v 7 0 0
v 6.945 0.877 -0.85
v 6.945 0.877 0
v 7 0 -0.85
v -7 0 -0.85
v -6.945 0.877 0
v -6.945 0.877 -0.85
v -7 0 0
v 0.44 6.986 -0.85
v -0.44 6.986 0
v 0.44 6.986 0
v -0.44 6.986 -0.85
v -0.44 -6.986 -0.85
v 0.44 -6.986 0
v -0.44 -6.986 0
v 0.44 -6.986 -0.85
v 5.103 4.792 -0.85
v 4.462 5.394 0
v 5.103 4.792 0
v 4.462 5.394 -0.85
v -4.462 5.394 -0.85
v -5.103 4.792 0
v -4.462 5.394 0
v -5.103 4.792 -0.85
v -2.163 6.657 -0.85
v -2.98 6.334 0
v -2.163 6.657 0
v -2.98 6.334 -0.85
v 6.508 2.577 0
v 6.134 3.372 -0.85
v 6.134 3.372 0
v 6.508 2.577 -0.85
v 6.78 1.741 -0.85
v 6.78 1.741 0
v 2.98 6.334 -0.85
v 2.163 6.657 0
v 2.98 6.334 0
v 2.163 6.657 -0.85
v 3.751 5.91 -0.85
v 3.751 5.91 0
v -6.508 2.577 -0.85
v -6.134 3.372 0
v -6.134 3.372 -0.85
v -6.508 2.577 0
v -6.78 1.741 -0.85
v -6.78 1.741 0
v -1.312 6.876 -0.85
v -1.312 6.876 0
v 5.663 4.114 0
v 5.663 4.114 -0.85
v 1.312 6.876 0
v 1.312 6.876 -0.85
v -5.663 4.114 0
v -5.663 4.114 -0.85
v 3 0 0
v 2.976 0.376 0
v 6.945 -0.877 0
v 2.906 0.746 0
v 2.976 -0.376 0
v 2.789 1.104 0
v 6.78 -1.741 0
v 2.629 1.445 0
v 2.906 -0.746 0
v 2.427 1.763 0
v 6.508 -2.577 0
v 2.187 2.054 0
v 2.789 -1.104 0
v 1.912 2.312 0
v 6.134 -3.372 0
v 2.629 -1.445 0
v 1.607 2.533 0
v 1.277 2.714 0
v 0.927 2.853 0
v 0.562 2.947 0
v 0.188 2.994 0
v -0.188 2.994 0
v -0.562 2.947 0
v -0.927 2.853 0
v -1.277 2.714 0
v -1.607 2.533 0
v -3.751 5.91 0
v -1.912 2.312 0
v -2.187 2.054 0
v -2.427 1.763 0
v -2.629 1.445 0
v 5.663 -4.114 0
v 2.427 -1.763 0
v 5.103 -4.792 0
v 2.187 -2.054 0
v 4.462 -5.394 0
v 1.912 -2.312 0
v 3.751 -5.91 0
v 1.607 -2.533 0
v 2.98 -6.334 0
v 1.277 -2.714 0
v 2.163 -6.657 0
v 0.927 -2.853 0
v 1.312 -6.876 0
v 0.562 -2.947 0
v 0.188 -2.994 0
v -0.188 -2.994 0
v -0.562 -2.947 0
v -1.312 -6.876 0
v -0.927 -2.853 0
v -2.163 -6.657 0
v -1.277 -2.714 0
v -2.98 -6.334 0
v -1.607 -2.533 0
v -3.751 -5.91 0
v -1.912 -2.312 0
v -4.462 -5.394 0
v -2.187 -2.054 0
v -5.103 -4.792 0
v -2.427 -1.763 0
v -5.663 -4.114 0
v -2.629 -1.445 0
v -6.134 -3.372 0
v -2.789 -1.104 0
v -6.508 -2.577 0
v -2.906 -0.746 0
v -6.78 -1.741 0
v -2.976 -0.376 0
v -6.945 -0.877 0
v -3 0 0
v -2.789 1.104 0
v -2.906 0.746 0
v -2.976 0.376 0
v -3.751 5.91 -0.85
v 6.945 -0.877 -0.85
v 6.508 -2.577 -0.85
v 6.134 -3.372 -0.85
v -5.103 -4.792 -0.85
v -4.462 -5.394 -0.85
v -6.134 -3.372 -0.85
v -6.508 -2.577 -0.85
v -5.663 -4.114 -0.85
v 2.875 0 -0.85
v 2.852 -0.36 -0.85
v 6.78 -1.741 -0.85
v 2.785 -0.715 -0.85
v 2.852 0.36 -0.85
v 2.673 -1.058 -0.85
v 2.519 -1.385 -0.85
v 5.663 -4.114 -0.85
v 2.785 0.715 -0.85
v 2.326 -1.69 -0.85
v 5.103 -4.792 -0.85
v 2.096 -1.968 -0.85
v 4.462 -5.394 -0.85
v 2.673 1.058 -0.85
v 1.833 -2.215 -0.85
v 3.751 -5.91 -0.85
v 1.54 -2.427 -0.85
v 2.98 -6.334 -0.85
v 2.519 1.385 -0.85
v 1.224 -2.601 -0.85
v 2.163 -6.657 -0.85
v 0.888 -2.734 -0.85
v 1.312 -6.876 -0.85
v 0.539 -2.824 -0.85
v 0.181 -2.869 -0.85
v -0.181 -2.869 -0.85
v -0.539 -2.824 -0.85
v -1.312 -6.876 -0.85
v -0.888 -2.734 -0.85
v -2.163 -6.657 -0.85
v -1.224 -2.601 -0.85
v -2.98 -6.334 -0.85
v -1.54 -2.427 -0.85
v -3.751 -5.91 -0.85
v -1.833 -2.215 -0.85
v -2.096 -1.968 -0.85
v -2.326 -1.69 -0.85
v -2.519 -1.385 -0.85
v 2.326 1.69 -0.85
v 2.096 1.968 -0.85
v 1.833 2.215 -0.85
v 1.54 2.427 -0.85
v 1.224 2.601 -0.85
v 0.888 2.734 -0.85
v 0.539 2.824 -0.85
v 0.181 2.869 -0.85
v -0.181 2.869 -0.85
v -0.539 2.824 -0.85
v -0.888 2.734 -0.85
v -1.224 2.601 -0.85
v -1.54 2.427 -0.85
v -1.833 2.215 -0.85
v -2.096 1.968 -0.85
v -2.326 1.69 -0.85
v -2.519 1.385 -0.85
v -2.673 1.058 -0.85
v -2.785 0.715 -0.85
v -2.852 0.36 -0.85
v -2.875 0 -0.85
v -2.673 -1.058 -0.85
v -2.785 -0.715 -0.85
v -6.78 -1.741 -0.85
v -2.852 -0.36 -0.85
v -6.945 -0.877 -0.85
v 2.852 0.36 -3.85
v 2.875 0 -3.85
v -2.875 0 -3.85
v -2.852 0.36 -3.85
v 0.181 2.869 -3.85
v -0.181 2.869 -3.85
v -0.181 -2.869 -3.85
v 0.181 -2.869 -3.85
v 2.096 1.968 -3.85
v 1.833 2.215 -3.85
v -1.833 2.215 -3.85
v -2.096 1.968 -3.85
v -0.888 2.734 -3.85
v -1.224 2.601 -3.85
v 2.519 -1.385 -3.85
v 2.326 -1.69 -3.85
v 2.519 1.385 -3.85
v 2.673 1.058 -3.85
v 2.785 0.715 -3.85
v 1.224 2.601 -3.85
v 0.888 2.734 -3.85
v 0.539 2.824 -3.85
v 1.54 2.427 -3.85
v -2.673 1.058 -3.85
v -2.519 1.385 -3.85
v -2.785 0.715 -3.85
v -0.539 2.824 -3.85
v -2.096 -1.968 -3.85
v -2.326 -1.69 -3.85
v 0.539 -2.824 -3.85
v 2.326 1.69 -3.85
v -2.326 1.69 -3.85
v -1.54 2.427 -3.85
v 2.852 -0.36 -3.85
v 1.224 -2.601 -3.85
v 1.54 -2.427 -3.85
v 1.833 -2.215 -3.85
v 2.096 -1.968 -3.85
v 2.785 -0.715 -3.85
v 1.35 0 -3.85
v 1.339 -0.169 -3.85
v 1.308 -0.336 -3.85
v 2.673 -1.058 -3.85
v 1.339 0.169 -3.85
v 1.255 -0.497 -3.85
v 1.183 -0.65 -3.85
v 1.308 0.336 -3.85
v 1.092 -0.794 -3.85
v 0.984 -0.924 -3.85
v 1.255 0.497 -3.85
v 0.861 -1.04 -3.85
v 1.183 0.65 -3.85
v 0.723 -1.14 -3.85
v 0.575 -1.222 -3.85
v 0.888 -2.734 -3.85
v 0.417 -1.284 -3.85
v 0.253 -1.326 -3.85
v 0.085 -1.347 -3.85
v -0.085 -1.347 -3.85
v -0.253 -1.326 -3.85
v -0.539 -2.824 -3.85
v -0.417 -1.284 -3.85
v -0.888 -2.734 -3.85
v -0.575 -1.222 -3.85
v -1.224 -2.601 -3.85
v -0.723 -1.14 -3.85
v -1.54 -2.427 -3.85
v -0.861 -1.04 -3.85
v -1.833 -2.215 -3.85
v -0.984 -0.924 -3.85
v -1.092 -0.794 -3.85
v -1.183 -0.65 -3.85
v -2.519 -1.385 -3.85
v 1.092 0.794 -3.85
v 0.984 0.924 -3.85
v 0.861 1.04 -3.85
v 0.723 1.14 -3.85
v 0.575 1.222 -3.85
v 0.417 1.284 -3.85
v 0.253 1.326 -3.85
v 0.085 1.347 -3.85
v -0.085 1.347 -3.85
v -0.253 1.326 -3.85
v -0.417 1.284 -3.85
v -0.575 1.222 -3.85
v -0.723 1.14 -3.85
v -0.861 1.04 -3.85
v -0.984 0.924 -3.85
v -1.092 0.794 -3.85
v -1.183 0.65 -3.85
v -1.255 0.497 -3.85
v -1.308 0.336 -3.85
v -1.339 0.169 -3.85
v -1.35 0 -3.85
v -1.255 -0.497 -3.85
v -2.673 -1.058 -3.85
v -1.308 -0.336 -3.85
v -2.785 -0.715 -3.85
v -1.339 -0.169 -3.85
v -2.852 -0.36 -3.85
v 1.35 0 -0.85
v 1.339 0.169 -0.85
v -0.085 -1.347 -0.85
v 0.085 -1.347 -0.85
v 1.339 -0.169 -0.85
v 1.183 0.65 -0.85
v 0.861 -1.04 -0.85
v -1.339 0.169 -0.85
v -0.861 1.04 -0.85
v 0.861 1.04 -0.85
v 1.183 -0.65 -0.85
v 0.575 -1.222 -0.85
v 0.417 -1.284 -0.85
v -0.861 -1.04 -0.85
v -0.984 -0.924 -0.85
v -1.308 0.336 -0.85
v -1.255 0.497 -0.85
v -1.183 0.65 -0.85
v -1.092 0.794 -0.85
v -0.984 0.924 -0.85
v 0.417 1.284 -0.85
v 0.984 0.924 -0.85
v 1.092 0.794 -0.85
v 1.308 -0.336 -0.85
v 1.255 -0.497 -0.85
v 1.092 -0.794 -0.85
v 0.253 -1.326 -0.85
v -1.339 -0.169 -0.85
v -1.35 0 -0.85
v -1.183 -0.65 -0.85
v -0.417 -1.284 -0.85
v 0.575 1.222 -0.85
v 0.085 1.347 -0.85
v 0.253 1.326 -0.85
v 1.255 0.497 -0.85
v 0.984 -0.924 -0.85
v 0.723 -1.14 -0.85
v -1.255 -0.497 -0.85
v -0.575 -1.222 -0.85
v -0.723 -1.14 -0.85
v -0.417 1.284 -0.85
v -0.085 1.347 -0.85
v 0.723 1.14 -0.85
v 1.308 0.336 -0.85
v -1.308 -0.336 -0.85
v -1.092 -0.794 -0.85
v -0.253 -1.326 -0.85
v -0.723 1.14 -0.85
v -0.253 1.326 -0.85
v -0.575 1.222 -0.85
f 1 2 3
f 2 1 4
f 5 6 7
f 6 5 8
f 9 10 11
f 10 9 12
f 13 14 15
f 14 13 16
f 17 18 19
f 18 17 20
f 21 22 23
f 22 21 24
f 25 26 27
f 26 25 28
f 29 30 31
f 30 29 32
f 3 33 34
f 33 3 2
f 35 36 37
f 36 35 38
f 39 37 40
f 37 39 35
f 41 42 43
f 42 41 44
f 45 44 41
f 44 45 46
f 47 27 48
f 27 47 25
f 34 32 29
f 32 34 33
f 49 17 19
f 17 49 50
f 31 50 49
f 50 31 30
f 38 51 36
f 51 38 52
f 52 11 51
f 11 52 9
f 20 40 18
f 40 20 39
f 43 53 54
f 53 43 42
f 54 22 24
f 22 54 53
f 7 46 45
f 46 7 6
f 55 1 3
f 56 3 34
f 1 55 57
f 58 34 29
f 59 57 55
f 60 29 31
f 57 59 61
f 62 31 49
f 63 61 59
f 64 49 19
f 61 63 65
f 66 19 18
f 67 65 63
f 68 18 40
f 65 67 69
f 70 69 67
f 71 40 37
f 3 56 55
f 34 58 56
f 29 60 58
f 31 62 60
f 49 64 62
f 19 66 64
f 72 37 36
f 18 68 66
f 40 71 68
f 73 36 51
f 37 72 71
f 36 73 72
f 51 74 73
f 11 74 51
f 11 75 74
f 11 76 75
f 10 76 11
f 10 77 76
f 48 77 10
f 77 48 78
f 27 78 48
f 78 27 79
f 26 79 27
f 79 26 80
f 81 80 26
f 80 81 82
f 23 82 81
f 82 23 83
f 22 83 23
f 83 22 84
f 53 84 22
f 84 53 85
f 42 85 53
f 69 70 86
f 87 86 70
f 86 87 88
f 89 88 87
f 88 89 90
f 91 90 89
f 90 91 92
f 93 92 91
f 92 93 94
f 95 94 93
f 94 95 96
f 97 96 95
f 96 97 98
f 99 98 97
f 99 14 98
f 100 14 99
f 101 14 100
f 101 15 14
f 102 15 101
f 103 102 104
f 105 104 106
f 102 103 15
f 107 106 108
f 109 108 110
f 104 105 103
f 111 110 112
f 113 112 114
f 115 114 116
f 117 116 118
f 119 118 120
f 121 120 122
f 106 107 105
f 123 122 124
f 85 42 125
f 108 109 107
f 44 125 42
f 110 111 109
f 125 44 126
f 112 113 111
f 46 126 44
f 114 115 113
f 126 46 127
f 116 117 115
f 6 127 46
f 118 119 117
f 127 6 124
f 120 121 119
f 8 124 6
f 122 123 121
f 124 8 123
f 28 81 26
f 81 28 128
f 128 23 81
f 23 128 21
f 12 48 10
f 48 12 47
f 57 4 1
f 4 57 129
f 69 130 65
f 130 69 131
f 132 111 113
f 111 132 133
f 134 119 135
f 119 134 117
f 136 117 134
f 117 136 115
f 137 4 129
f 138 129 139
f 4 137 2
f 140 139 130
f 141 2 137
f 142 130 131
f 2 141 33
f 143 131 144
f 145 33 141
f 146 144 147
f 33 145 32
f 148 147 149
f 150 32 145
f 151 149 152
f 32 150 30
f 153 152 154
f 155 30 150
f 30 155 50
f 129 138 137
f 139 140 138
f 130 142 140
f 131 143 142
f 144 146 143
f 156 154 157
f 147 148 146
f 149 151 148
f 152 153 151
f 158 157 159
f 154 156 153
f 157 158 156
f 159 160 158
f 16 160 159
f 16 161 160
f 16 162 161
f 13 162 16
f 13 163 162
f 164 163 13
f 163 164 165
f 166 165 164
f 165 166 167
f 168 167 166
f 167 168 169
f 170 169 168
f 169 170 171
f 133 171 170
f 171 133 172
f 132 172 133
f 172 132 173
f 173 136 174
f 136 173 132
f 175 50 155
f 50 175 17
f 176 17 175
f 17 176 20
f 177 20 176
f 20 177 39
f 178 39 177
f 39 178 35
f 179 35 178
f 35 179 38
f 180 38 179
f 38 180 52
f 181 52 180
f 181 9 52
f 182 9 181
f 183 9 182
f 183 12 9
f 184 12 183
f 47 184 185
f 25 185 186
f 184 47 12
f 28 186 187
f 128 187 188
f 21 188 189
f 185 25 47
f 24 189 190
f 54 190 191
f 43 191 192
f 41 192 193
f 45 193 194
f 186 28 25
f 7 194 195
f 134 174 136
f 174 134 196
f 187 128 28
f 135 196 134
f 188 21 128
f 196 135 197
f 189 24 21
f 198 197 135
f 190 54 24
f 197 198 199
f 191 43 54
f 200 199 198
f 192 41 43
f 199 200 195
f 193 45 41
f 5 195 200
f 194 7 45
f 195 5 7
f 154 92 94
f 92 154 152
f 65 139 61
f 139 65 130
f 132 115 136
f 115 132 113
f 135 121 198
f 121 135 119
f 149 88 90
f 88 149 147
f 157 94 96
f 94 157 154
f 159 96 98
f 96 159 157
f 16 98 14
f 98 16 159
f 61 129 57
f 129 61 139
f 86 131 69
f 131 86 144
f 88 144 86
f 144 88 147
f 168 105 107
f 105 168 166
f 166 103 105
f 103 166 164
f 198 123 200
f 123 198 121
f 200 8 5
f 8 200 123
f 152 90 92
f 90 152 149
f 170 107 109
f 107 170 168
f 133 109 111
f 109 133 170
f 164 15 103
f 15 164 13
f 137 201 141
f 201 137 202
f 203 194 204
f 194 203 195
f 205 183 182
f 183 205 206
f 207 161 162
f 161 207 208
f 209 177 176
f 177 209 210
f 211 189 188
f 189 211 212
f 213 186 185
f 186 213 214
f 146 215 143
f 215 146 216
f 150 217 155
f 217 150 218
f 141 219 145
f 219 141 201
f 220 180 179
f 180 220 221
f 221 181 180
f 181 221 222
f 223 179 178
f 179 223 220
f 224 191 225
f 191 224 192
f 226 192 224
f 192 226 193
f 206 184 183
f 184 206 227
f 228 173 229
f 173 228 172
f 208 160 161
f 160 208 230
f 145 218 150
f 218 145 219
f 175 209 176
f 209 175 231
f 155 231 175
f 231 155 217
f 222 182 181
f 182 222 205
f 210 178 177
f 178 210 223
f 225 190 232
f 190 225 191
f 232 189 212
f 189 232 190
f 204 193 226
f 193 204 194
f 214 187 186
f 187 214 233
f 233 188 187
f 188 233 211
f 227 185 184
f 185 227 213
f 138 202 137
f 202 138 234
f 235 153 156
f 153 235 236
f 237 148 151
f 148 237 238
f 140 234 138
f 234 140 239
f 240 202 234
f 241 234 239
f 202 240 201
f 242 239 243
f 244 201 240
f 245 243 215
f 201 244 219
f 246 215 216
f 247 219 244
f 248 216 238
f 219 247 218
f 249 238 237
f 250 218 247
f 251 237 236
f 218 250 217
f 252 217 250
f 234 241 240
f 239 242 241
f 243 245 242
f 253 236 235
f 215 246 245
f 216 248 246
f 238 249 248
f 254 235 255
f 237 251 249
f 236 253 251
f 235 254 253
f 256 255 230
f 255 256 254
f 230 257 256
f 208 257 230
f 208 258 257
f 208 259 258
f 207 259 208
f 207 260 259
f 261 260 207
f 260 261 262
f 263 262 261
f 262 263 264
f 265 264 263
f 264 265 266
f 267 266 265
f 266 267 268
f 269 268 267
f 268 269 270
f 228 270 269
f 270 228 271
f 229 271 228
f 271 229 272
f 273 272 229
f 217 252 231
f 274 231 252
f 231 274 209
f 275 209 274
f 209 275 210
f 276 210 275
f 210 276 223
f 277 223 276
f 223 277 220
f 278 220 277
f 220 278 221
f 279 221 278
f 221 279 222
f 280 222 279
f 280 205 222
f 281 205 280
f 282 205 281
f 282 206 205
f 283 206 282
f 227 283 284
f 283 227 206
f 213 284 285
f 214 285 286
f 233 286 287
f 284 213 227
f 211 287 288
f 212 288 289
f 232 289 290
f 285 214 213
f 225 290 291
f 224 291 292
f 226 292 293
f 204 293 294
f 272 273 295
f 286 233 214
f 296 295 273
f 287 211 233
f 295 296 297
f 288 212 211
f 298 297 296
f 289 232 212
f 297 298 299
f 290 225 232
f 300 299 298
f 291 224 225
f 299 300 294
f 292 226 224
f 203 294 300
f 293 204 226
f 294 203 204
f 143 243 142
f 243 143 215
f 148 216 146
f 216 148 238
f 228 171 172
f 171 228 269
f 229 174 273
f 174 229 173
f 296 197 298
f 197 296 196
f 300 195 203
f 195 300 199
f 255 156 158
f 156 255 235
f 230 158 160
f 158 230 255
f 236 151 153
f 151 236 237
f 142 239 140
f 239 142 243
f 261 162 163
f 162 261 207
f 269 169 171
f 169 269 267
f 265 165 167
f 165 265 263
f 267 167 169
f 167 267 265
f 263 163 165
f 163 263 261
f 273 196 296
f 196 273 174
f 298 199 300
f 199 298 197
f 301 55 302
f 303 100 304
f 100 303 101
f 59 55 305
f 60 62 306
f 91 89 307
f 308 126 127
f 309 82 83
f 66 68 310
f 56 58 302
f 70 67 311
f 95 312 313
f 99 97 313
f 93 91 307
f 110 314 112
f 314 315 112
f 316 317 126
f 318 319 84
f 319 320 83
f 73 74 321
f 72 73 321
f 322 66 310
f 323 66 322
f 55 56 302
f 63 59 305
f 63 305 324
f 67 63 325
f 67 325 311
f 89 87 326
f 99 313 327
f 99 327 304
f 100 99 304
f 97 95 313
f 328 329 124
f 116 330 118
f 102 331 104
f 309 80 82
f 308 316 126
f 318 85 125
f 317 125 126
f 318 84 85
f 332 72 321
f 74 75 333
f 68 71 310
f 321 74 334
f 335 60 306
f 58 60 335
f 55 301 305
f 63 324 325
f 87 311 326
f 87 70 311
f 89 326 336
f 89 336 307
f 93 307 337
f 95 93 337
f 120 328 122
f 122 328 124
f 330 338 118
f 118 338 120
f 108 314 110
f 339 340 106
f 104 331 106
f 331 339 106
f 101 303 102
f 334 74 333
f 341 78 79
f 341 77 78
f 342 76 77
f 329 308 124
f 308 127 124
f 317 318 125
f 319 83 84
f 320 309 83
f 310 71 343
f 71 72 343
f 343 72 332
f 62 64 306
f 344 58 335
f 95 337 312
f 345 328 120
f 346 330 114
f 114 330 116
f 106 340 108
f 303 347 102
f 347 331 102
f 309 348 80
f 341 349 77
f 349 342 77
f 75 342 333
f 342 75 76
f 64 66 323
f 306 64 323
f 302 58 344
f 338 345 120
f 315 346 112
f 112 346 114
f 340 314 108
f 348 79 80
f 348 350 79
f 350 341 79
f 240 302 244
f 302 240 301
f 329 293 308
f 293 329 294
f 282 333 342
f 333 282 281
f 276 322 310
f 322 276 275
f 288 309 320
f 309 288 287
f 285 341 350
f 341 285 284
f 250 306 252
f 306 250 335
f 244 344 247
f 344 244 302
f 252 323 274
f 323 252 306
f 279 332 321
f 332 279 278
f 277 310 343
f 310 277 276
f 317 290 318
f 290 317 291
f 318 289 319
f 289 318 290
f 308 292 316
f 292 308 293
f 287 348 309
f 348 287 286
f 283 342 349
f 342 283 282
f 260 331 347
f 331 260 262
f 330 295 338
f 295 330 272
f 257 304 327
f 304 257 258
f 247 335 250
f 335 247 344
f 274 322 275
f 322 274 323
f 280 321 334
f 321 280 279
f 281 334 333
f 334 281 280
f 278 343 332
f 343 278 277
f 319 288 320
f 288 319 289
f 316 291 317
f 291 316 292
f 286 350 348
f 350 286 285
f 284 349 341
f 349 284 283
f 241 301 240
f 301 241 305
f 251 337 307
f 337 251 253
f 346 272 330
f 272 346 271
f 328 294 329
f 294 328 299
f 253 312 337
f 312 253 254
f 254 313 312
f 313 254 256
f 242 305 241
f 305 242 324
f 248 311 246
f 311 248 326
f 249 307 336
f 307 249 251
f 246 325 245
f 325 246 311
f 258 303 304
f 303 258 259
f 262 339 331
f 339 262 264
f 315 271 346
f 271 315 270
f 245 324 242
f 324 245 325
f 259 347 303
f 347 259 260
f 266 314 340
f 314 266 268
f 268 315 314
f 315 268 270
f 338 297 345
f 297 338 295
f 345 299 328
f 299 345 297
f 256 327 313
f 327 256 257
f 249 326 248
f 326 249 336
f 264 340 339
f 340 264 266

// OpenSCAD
$fn = 50;


difference() {
	union() {
		translate(v = [0, 0, -0.8500000000]) {
			cylinder(h = 0.8500000000, r = 7.0000000000);
		}
		translate(v = [0, 0, -3.8500000000]) {
			cylinder(h = 3.8500000000, r = 2.8750000000);
		}
	}
	union() {
		translate(v = [0, 0, 0]) {
			rotate(a = [0, 0, 0]) {
				difference() {
					union() {
						translate(v = [0, 0, -3.8500000000]) {
							cylinder(h = 3.8500000000, r = 1.0000000000);
						}
						translate(v = [0, 0, -0.8500000000]) {
							cylinder(h = 0.8500000000, r1 = 1.3500000000, r2 = 3.0000000000);
						}
						translate(v = [0, 0, -3.8500000000]) {
							cylinder(h = 3.8500000000, r = 1.3500000000);
						}
						translate(v = [0, 0, -3.8500000000]) {
							cylinder(h = 3.8500000000, r = 1.0000000000);
						}
					}
					union();
				}
			}
		}
	}
}
